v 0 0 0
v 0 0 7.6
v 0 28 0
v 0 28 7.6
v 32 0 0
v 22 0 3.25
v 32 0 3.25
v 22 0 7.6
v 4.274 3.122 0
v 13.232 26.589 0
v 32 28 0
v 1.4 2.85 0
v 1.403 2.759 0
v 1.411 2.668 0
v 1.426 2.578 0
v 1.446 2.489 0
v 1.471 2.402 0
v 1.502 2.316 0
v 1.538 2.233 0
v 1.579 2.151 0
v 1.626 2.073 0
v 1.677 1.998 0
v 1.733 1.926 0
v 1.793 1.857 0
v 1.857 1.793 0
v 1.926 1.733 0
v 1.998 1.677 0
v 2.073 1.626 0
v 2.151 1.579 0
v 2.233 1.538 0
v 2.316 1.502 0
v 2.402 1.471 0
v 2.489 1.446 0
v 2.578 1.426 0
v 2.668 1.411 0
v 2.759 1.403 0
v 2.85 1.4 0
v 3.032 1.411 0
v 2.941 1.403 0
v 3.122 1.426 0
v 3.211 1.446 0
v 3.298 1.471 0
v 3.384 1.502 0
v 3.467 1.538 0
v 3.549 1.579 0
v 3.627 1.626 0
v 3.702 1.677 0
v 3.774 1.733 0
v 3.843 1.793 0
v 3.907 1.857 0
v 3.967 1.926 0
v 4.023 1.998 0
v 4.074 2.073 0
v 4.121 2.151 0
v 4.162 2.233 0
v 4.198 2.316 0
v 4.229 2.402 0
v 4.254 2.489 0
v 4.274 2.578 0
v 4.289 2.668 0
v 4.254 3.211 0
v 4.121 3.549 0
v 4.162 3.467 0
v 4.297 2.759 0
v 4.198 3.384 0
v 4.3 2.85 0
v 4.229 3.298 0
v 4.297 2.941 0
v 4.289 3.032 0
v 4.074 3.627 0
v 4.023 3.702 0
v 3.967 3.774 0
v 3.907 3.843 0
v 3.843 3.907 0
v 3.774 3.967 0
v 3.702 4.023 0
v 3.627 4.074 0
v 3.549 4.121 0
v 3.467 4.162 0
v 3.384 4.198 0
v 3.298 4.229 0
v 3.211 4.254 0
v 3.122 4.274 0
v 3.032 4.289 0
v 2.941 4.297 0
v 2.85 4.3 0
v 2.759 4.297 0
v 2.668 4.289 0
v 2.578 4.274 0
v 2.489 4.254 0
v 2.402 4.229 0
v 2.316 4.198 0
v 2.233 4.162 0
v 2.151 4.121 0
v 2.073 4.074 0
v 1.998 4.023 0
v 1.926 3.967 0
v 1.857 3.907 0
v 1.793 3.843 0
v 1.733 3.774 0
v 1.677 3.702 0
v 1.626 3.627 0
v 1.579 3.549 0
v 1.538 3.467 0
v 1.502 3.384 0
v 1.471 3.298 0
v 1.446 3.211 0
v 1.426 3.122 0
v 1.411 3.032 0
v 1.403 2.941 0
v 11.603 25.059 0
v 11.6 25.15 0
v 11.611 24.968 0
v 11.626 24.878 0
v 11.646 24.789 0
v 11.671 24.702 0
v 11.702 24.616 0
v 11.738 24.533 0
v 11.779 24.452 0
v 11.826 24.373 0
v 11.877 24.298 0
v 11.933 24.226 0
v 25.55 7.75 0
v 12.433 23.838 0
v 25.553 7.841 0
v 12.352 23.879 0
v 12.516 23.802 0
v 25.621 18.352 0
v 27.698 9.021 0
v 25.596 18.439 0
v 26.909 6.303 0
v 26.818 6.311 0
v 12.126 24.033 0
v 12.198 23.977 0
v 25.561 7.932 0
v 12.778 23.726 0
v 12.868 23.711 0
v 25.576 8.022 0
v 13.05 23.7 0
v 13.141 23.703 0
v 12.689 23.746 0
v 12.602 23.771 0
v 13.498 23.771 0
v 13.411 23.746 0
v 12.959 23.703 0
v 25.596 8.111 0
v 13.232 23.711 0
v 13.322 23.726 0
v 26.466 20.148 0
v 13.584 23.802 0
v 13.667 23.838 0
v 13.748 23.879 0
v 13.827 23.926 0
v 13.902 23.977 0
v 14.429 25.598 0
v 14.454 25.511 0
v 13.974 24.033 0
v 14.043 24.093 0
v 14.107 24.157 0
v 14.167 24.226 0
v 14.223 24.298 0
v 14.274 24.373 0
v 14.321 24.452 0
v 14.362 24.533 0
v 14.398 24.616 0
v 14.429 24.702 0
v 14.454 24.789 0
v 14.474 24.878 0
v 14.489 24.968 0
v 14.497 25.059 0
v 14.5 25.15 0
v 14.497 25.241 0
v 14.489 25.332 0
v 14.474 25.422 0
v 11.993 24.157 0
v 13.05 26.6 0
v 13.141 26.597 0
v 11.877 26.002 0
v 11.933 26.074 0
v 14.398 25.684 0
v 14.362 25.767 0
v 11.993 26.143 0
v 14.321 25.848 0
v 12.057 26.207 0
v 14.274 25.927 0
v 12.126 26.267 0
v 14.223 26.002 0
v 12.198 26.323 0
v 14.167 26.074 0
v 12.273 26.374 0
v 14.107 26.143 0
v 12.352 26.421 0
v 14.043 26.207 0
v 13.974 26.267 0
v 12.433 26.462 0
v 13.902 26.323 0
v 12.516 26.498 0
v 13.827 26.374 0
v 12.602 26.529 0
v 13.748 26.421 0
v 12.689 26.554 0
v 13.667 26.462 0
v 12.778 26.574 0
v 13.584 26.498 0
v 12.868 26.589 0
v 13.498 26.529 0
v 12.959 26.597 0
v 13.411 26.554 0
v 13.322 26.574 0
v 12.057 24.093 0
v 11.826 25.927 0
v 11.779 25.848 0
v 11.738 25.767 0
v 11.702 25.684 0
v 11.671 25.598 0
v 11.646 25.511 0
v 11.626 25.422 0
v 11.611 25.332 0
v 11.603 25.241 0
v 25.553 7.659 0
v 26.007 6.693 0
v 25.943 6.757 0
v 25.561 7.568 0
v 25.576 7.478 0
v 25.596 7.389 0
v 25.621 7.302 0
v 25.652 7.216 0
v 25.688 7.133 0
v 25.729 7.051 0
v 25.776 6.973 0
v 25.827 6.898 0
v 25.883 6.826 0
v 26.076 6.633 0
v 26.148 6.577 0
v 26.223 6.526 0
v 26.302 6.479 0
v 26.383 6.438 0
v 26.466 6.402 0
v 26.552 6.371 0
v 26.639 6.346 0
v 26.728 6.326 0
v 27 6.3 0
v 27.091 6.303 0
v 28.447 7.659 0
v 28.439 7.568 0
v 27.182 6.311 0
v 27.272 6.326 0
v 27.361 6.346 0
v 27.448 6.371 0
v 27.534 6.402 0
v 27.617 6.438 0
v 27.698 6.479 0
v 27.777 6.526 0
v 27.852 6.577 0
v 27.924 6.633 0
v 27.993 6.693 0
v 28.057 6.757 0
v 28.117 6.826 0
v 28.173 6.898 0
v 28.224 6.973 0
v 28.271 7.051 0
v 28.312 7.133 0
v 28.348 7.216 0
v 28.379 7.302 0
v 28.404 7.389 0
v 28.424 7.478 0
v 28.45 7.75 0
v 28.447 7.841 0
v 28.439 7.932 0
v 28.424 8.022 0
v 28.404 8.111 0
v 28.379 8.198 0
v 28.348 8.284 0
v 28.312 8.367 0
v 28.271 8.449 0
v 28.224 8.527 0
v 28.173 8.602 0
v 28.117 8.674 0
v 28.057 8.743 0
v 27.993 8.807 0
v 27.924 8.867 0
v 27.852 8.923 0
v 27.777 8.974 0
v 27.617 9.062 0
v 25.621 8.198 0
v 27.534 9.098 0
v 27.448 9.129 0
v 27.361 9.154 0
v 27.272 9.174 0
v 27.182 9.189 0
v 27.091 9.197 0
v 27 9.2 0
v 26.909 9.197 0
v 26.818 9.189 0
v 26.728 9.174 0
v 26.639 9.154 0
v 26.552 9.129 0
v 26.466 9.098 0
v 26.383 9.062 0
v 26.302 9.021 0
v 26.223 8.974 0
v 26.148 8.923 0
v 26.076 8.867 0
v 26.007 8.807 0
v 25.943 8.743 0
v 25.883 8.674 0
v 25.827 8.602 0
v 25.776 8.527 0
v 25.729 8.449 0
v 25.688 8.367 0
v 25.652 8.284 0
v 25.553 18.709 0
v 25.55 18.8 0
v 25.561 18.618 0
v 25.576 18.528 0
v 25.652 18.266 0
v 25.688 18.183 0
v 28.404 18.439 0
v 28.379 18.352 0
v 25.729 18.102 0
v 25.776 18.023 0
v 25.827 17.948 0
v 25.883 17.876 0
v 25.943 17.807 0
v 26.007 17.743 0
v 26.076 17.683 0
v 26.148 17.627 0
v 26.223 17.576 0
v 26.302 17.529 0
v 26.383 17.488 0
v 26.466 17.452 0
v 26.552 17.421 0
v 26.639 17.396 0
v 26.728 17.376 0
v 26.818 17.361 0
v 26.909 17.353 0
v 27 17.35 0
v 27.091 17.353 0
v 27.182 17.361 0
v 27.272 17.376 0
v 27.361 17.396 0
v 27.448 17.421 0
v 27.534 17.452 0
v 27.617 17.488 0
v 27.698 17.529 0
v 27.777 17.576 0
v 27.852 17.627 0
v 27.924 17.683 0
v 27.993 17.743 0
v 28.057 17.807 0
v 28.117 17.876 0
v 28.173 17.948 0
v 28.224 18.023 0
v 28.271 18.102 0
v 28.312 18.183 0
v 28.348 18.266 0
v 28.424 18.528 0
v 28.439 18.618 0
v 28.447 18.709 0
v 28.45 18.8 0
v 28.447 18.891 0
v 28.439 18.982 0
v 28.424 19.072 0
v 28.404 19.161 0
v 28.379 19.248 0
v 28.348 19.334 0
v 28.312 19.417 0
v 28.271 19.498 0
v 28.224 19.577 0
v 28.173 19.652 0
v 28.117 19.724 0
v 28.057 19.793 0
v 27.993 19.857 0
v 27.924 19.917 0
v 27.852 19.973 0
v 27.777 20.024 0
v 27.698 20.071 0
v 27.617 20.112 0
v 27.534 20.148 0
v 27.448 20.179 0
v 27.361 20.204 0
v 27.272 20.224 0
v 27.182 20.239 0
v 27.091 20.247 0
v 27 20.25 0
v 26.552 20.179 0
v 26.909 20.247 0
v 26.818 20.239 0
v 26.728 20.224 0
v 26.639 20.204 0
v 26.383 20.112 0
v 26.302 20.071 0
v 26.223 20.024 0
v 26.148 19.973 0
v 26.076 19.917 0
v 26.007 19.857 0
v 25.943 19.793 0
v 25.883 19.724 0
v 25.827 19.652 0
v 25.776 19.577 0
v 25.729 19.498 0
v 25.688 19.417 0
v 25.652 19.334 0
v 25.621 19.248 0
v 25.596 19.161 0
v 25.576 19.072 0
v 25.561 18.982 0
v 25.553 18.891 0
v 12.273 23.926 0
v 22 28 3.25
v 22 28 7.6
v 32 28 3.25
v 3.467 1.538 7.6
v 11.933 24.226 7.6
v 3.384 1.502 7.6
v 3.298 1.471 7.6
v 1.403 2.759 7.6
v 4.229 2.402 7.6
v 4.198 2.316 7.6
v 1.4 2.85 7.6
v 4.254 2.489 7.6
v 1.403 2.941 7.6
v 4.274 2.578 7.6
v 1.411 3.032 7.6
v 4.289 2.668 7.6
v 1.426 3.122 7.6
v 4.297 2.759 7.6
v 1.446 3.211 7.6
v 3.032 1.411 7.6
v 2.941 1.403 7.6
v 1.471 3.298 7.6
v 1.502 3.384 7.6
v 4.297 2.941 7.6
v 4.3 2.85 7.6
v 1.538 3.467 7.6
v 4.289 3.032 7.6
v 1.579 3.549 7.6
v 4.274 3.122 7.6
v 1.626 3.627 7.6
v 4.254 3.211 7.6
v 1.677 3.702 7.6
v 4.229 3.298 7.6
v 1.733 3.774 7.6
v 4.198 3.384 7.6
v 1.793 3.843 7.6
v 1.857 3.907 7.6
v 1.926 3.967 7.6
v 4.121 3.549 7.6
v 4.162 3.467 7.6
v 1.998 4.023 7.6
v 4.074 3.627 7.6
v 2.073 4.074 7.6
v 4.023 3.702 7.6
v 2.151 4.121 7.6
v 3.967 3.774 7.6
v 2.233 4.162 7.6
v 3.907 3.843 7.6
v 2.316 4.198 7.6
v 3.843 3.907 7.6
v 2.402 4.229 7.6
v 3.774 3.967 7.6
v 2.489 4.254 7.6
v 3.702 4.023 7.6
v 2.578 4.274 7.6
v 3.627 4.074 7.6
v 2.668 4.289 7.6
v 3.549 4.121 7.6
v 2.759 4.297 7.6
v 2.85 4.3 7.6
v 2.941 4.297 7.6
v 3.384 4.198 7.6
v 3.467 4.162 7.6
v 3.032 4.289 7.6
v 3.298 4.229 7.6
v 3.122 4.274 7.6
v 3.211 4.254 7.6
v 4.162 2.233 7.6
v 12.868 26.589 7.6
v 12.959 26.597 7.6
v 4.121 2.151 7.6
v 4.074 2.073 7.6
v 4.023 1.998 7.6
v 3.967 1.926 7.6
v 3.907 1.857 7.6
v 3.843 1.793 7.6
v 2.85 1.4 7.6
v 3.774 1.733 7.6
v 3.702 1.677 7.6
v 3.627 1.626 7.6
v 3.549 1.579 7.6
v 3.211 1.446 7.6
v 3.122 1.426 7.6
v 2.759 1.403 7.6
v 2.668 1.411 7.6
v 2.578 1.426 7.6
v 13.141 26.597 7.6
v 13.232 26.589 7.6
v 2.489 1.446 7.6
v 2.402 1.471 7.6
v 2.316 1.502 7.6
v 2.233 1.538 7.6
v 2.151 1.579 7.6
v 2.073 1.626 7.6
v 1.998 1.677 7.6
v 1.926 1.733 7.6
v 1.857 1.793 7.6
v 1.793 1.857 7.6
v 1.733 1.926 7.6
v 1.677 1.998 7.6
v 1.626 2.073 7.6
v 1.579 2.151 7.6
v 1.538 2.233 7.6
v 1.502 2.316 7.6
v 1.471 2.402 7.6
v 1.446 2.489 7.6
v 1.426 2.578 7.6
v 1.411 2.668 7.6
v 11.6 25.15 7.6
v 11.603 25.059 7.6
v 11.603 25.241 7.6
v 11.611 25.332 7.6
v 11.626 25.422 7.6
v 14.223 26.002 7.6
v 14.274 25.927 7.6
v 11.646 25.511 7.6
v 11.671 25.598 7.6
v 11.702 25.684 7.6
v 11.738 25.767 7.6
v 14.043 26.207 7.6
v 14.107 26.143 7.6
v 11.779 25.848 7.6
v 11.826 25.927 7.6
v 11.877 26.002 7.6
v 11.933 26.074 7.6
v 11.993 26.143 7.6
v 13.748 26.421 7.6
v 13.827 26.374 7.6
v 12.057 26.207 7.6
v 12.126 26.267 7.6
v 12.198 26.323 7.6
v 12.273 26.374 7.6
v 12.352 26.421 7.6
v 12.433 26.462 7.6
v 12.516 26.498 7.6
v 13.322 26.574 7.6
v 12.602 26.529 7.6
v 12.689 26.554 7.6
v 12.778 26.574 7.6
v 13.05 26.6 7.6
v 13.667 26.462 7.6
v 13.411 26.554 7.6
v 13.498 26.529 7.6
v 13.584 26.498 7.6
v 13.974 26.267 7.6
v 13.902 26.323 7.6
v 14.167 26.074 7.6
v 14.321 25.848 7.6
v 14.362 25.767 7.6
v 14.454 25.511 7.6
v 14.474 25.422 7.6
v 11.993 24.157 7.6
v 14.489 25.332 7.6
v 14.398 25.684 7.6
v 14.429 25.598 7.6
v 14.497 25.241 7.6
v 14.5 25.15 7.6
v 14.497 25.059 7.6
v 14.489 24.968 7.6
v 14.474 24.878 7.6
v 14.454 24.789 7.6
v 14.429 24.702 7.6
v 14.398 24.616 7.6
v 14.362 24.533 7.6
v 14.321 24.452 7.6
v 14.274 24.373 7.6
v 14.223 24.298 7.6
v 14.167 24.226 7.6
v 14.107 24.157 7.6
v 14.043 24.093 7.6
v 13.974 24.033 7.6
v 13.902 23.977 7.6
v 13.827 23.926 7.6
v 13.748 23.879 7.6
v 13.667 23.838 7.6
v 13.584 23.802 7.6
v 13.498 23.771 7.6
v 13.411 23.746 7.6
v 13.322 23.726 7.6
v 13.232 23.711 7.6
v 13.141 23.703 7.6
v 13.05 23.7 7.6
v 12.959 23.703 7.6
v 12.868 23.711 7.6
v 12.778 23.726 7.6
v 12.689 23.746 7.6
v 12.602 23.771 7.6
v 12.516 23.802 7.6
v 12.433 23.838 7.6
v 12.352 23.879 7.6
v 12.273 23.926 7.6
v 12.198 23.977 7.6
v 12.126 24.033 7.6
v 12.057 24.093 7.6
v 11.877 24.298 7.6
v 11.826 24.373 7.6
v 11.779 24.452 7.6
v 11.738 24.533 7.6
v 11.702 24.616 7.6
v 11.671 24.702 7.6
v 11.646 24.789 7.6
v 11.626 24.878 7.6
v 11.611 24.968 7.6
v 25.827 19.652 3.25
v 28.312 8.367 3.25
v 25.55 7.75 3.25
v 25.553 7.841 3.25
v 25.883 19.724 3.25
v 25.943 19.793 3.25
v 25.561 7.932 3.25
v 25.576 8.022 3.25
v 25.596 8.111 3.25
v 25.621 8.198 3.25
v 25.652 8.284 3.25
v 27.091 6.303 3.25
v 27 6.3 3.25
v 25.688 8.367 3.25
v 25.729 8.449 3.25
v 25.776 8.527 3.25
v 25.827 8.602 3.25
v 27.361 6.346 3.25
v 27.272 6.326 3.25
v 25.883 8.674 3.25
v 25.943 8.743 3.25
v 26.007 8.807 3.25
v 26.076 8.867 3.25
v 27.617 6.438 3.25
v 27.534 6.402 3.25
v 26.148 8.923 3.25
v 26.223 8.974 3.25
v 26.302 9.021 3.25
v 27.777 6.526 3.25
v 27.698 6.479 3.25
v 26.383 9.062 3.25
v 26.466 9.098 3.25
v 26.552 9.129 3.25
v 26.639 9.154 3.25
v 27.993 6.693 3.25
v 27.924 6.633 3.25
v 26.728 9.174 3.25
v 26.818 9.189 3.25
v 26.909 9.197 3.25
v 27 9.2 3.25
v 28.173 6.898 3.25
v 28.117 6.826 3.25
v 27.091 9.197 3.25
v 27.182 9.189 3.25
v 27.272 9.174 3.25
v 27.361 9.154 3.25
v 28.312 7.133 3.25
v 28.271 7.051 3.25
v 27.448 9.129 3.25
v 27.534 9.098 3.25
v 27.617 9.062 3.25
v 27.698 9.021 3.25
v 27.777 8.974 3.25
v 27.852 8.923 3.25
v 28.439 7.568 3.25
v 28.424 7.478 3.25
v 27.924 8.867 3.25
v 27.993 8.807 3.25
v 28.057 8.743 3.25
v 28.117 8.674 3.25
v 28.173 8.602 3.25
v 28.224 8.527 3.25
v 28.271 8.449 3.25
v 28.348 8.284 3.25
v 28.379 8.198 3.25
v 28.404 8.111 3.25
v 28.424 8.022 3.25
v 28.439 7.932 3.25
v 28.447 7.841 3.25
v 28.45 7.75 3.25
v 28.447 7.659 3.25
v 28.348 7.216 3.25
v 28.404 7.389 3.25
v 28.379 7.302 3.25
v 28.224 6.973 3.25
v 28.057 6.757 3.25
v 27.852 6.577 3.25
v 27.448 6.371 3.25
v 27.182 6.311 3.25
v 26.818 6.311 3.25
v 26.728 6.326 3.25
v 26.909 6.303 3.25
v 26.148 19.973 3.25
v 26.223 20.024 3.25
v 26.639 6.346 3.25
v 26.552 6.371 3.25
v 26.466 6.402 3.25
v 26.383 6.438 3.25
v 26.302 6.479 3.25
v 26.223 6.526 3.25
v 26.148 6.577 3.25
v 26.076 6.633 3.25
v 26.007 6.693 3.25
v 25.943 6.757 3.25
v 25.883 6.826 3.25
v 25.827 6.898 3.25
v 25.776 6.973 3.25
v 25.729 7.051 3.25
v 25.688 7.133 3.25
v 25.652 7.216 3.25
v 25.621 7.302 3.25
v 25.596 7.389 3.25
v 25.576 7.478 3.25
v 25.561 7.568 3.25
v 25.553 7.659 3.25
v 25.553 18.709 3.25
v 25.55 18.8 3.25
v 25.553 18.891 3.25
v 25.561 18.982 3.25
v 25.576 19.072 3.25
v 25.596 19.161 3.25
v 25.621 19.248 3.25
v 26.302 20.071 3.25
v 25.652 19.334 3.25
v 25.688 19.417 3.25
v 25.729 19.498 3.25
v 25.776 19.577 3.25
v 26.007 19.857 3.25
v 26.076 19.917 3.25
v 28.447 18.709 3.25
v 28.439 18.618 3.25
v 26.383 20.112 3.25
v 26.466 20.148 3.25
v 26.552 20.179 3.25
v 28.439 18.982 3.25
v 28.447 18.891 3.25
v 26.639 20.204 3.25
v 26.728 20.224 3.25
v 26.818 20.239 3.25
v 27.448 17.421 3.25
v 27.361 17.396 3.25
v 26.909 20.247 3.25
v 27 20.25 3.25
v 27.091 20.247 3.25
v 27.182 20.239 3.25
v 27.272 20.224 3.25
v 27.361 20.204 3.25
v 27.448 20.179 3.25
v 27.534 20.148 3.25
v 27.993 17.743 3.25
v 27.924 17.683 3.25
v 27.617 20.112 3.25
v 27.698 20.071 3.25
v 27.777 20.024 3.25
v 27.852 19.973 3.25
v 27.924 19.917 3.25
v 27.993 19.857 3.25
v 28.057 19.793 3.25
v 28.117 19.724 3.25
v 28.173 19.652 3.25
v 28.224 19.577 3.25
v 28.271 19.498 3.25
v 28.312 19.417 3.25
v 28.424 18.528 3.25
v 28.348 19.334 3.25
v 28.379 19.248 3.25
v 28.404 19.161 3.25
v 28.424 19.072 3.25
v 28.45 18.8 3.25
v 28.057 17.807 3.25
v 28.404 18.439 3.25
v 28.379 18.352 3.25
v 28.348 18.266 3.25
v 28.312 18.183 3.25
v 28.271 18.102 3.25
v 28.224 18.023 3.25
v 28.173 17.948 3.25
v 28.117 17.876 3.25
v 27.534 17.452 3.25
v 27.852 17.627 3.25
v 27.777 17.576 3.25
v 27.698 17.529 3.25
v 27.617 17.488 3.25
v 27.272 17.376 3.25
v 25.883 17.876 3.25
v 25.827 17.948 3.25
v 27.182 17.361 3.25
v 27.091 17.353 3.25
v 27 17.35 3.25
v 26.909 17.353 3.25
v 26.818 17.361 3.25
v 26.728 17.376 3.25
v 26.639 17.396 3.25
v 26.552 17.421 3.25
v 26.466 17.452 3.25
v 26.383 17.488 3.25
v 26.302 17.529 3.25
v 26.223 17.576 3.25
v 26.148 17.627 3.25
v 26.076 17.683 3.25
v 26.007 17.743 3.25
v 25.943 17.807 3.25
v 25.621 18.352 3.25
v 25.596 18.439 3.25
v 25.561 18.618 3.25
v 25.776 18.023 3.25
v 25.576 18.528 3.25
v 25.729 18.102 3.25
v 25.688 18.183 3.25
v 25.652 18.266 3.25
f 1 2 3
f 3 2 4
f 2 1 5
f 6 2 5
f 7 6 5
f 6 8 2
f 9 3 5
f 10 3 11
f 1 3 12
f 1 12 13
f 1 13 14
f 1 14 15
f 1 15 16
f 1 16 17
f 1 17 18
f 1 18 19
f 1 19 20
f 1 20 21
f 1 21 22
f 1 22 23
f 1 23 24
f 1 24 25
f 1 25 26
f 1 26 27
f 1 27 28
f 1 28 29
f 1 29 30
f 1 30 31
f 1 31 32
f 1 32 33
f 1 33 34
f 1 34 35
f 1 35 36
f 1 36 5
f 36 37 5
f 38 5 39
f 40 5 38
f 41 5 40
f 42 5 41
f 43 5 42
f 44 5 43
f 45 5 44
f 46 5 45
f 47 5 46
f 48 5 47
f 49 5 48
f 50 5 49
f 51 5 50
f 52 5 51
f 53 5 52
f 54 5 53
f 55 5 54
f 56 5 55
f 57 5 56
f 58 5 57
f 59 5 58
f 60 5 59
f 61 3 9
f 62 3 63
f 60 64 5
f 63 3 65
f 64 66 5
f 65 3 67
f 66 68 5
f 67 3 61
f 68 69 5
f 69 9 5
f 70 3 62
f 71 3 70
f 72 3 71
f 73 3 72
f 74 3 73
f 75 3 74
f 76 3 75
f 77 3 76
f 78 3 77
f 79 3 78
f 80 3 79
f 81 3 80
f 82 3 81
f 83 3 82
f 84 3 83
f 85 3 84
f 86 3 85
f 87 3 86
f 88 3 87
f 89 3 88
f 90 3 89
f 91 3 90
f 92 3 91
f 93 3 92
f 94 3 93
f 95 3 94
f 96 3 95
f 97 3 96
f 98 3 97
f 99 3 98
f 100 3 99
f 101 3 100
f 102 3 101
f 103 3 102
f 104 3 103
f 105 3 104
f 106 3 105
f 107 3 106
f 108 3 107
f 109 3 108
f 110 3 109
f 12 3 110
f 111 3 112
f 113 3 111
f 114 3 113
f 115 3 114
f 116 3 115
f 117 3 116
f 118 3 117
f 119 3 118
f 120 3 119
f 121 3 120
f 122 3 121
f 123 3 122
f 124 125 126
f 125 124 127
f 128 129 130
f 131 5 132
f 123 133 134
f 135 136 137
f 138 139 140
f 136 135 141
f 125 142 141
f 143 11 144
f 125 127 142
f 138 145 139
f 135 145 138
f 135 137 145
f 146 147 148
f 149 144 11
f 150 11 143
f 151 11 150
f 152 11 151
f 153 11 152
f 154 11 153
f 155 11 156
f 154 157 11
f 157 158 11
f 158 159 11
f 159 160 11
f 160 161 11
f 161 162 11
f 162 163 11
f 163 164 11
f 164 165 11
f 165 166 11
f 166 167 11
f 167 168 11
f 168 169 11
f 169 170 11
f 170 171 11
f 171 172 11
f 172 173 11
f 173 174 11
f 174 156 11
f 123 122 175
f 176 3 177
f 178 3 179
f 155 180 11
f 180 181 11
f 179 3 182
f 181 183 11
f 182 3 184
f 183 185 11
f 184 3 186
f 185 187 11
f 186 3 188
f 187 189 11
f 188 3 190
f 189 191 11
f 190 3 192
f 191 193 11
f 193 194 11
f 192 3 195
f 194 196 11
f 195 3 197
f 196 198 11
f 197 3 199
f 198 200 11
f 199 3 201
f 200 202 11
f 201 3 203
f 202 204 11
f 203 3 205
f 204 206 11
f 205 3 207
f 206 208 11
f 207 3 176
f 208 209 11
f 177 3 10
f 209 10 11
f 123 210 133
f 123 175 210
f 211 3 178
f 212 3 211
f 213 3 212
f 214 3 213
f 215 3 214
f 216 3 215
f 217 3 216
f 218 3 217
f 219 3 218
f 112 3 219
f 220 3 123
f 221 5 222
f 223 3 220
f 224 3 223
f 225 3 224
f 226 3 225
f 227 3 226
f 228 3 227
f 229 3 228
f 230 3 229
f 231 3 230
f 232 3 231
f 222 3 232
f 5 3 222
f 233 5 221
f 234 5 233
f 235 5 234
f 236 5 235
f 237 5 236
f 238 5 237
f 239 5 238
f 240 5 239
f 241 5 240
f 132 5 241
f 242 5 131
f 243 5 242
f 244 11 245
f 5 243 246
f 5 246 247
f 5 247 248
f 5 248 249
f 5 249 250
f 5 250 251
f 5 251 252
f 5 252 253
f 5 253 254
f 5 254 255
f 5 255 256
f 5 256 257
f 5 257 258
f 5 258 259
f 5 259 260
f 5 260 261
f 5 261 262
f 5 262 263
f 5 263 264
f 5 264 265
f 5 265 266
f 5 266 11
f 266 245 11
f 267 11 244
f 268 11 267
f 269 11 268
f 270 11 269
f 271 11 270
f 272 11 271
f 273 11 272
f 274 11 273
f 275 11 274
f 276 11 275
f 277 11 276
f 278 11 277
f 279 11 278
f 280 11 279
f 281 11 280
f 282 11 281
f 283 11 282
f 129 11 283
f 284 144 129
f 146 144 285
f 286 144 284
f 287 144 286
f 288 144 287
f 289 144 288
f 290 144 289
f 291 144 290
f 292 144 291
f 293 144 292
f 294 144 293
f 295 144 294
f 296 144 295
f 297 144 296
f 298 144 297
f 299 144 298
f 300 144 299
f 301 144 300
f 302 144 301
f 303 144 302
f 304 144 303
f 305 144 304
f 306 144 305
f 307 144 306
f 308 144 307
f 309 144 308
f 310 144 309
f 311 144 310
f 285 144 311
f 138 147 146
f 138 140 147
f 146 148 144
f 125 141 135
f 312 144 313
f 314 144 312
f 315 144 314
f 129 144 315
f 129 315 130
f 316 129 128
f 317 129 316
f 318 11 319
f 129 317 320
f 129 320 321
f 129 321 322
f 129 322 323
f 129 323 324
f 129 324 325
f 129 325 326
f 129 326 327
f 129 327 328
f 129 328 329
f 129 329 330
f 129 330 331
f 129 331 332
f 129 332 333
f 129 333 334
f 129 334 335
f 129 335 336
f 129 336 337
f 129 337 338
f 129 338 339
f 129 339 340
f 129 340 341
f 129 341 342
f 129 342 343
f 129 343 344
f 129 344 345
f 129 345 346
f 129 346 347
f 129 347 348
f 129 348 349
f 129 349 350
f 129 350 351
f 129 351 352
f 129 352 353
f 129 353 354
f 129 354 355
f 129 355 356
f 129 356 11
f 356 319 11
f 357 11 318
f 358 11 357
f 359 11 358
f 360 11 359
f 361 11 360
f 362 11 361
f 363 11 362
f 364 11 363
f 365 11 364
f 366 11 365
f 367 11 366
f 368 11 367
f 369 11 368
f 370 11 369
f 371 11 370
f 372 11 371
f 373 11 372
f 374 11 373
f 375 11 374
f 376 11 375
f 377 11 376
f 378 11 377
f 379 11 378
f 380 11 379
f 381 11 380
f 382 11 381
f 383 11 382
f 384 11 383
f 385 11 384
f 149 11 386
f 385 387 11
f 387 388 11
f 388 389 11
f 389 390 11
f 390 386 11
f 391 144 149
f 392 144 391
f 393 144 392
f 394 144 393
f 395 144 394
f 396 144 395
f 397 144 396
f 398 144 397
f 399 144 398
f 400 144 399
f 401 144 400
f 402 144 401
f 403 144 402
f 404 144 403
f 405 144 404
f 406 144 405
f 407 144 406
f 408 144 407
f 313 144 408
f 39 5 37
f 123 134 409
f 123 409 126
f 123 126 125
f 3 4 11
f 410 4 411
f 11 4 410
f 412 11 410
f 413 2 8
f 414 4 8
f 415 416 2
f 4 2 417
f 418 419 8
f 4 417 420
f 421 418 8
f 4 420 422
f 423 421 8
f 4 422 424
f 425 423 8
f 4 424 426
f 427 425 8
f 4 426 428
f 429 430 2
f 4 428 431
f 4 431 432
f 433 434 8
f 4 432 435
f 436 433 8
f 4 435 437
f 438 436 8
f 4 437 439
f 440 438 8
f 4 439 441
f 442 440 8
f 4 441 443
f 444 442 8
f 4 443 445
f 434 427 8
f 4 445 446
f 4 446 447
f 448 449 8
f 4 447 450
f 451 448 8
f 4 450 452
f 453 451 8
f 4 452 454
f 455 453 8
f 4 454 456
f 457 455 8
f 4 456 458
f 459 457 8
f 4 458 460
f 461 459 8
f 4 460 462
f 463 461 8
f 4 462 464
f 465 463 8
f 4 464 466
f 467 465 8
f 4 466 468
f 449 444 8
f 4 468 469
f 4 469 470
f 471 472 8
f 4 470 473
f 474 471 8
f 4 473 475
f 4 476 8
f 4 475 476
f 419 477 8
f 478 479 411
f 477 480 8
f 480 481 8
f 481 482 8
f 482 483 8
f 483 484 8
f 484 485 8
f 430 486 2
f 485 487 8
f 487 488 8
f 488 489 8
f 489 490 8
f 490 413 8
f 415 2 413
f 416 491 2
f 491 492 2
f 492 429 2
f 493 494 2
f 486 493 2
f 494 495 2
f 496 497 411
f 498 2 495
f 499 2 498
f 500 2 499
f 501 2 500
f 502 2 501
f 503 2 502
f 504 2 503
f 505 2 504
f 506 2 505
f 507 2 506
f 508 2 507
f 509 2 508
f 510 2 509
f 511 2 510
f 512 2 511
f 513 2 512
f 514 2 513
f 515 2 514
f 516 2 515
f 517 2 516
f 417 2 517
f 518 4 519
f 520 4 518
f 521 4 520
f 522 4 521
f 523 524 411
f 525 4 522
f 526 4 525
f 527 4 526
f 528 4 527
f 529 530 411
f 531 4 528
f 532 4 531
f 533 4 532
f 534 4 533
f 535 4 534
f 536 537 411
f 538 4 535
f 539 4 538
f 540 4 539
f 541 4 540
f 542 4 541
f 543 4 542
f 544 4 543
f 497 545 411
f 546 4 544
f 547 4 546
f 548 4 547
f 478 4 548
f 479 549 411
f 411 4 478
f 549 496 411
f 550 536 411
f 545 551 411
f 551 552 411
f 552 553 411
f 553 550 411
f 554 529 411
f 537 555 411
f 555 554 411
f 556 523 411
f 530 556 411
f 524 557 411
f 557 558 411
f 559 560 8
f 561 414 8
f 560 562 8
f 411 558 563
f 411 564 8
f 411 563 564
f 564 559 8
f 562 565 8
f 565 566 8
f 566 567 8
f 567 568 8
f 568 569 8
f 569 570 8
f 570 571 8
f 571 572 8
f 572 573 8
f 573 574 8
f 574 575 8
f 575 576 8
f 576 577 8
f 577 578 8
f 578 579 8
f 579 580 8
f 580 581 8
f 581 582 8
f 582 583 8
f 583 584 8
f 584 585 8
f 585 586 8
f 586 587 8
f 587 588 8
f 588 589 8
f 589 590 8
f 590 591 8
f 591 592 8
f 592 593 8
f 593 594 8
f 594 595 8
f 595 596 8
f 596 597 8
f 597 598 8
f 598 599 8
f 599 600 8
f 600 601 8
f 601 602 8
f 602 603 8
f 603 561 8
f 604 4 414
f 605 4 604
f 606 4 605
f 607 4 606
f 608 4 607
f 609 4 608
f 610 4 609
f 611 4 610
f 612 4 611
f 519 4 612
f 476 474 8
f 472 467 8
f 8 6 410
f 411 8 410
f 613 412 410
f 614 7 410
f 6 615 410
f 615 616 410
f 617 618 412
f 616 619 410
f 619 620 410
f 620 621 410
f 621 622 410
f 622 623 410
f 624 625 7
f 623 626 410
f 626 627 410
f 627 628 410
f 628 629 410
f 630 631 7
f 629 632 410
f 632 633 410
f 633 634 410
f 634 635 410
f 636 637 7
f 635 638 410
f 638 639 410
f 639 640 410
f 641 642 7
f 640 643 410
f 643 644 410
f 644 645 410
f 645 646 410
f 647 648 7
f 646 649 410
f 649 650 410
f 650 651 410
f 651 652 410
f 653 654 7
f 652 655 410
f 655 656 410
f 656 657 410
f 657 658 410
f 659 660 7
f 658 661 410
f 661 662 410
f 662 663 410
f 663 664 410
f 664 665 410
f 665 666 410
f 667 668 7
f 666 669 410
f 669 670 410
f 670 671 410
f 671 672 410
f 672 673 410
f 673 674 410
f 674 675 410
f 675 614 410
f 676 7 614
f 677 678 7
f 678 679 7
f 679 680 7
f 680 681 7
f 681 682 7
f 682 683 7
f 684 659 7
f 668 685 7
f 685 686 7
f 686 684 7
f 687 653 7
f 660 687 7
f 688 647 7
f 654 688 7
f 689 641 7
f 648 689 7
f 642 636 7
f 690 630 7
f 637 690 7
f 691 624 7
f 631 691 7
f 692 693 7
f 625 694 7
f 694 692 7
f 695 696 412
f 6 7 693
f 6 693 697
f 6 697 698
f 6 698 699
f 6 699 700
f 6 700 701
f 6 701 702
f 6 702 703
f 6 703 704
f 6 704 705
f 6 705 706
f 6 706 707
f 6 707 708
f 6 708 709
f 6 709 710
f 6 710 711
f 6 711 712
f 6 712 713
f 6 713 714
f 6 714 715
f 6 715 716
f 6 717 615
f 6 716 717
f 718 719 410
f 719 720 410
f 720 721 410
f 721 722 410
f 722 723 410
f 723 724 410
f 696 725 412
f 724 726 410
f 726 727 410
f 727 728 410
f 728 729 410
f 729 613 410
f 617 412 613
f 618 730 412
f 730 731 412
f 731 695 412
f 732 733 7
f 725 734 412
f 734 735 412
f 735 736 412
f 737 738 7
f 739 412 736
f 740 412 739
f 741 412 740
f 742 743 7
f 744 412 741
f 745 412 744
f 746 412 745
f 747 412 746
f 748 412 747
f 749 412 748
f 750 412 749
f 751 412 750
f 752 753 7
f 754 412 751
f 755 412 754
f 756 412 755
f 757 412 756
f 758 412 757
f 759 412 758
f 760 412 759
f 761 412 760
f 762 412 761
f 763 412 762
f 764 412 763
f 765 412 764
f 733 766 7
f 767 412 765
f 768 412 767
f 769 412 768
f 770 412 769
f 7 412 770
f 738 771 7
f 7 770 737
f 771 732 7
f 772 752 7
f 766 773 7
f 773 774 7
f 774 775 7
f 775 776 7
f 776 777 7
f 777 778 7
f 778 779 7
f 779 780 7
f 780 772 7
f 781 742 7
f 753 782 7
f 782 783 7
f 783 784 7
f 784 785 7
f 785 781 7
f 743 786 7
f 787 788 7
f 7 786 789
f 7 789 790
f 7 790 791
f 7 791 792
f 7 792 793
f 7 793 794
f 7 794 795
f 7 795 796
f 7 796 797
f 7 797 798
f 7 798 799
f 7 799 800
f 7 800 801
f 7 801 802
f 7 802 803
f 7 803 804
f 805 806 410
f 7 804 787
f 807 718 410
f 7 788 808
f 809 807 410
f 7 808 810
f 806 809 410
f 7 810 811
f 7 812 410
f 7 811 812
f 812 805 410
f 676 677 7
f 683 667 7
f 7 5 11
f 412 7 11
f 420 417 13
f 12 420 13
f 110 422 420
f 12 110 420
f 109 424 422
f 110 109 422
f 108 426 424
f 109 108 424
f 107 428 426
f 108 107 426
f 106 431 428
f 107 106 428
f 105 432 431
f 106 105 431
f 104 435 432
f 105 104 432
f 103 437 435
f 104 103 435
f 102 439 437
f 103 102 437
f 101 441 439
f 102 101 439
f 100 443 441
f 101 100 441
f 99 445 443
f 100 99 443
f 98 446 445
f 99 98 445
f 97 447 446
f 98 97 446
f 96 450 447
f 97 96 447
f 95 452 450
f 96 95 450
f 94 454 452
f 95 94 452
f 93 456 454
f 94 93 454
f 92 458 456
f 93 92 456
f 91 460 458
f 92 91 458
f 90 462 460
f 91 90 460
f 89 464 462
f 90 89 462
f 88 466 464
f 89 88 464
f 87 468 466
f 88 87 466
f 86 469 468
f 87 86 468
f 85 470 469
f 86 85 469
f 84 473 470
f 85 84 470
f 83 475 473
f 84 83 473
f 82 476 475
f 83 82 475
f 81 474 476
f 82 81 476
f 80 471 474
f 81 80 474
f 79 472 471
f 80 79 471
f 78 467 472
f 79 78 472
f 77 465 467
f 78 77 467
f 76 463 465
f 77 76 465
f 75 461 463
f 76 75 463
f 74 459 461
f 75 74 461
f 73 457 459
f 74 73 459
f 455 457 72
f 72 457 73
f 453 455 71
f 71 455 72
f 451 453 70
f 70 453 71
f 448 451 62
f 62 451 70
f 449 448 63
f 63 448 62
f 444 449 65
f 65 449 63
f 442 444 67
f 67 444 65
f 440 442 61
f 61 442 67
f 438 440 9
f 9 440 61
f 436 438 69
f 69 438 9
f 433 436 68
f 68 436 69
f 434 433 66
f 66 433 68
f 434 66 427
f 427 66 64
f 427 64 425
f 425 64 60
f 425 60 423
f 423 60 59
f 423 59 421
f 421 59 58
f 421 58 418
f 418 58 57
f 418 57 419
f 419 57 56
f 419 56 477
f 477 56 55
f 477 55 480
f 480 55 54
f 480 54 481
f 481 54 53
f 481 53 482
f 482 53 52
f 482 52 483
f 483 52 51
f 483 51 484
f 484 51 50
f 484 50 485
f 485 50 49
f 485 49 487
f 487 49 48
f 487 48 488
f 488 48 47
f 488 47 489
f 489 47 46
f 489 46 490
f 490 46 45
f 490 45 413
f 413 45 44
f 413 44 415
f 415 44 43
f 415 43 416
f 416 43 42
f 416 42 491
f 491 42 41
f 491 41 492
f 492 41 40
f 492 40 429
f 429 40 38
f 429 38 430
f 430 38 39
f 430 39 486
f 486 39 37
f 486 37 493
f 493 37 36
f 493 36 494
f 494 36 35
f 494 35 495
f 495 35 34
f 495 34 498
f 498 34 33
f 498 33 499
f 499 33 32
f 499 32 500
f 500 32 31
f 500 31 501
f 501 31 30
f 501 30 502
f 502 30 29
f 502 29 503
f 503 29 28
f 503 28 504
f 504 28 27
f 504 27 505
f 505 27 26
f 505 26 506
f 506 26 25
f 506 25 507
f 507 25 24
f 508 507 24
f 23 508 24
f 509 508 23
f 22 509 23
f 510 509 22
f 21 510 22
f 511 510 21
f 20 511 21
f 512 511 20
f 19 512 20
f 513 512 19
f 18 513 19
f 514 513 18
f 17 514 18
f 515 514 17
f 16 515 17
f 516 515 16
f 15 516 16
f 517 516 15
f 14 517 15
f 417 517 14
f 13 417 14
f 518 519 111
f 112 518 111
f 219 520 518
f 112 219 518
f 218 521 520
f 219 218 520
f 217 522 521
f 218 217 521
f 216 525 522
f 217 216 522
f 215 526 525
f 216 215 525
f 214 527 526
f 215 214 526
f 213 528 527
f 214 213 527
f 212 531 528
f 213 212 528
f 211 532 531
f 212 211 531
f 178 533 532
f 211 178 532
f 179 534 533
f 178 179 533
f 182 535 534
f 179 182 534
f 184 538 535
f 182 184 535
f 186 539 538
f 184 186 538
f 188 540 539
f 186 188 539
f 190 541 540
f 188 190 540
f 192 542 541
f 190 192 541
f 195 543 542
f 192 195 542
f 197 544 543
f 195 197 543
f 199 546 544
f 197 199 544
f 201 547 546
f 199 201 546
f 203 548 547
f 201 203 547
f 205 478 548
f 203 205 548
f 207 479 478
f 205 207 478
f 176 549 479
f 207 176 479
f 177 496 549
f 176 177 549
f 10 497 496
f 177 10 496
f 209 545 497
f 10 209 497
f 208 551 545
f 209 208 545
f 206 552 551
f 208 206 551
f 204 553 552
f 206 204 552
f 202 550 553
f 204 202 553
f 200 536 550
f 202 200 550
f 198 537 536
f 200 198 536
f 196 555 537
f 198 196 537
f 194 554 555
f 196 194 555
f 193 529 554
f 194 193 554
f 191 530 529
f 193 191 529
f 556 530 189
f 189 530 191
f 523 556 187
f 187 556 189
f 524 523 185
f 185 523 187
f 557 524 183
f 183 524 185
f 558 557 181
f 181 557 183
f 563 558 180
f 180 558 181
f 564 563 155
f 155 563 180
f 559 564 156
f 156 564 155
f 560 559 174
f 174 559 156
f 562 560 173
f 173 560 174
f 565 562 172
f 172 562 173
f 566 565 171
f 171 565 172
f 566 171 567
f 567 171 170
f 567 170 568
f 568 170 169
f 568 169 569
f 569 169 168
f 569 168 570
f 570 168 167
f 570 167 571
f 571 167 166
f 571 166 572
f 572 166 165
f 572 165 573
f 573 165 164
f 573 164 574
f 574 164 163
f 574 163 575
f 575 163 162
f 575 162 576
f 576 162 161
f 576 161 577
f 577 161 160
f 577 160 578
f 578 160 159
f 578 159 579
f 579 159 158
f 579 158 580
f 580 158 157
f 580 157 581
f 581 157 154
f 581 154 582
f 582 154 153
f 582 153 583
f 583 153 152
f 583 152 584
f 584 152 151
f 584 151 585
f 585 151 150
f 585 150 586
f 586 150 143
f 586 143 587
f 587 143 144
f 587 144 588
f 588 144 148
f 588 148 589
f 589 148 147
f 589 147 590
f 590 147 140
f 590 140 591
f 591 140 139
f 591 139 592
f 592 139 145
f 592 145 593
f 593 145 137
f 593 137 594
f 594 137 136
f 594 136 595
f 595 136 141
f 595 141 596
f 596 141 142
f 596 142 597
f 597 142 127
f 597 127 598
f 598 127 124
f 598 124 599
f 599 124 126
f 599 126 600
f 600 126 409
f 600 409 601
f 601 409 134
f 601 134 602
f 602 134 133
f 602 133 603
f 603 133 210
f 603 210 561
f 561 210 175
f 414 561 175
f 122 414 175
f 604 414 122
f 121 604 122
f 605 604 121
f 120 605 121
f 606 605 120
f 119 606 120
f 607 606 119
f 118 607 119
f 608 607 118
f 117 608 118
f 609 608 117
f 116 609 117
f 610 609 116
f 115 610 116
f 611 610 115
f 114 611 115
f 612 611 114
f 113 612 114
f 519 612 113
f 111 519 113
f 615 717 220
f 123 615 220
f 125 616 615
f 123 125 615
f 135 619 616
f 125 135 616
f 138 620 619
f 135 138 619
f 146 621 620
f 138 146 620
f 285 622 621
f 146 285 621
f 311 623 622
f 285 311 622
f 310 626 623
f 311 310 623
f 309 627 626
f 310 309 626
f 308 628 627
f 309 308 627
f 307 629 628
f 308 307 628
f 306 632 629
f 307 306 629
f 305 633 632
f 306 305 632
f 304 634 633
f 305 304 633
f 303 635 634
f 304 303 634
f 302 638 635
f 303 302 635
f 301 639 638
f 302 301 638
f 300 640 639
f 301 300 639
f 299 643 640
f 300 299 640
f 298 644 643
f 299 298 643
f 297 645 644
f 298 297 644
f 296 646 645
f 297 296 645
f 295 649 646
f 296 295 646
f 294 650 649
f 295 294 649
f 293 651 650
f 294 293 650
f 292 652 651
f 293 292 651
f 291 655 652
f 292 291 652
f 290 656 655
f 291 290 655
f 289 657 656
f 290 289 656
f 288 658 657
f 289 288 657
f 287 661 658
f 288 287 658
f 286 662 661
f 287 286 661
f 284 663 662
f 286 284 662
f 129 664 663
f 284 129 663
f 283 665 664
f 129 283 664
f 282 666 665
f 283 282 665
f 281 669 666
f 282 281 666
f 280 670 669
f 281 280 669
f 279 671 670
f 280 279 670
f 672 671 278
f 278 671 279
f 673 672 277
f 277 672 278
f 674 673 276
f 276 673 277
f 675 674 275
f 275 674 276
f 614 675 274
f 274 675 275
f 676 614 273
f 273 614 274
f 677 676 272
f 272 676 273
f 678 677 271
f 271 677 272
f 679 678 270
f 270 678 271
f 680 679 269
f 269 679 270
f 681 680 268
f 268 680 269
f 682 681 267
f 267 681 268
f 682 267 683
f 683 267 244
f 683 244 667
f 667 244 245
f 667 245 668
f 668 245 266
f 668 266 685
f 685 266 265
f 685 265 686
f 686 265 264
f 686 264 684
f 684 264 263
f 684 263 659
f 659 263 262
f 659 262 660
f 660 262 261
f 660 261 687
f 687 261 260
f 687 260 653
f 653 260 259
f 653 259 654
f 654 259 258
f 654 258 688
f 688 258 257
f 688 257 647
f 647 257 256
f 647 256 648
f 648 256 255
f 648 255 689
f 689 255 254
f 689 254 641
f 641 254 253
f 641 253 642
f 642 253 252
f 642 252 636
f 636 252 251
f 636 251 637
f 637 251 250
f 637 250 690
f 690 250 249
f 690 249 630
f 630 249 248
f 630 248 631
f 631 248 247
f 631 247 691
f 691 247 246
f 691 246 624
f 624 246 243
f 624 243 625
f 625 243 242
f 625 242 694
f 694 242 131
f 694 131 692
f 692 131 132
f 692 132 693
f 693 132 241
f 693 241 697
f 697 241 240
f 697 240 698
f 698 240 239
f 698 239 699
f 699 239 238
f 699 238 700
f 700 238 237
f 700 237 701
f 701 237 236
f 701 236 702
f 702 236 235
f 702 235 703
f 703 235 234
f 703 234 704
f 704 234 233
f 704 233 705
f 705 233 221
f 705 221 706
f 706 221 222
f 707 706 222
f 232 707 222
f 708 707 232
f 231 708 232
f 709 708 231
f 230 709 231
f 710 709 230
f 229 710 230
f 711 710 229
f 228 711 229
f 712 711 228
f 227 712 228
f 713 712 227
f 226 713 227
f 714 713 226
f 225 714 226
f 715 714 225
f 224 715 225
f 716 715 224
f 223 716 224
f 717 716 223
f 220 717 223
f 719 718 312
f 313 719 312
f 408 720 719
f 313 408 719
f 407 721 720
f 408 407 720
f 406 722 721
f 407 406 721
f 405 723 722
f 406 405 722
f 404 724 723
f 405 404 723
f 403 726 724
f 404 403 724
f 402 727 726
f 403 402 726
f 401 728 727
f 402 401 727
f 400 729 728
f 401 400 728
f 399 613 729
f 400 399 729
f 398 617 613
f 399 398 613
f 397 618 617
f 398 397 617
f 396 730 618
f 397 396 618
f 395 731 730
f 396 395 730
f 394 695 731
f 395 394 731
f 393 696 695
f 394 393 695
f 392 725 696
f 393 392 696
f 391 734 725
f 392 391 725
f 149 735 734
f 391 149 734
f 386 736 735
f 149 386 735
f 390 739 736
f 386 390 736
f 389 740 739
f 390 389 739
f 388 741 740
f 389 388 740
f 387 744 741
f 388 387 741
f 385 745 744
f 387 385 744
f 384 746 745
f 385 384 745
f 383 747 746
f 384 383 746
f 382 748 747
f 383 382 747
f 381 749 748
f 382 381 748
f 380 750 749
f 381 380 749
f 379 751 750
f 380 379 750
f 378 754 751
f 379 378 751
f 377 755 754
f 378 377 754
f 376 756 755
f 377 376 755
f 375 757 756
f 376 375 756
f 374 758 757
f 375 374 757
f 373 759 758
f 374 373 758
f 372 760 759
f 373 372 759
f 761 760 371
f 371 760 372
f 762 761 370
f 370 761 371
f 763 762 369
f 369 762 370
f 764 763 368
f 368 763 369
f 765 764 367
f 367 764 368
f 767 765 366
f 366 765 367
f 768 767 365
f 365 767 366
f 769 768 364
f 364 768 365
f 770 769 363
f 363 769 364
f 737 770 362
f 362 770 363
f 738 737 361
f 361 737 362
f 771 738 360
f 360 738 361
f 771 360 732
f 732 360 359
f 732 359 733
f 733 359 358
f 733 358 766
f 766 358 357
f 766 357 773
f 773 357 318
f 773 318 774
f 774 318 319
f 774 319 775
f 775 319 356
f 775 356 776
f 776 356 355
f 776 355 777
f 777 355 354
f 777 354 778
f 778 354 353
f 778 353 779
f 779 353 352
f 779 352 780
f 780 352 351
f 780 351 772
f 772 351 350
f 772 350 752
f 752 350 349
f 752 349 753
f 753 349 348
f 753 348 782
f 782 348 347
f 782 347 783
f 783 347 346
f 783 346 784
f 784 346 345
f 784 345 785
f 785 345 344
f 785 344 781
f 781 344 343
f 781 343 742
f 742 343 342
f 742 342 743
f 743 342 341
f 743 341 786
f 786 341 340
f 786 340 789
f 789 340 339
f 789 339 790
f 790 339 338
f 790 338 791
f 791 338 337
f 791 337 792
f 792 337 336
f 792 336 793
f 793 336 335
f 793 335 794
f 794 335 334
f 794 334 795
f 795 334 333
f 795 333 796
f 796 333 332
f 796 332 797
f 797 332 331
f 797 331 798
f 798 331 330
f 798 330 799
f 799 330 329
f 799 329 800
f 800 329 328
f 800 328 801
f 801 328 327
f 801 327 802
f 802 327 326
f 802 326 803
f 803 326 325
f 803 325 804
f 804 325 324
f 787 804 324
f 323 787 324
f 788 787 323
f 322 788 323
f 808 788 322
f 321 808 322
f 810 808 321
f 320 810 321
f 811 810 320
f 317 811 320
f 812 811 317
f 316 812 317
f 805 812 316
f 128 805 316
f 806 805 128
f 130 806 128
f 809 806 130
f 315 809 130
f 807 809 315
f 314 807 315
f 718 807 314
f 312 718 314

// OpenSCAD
$fn=100;

mm=1;

switch_z=10*mm;

base_x=32*mm;
base_y=28*mm;
base_z=3.25*mm;

layer2_z=7.6*mm-base_z;

riser_x=22*mm;
riser_y=base_y;
riser_z=layer2_z;

riser_x_off=0;
riser_y_off=0;
riser_z_off=base_z;

hole_r=2.9*mm/2;
hole_z=base_z + layer2_z;

hole_y_off=1.4*mm + hole_r;

hole1_x_off=11.6*mm + hole_r;
hole1_y_off=base_y-hole_y_off;

hole2_x_off=hole_y_off;
hole2_y_off=hole_y_off;

tab_x=2.8*mm;
tab_y=12.5*mm;
tab_z=layer2_z + 3;

tab_x_off=riser_x+3.6*mm + (tab_x/2);
tab_y_off=(base_y-tab_y)/2;
tab_z_off=base_z;

module base(){
   cube([base_x, base_y, base_z]);
}

module tab(x_off, y_off, z_off, x, y, z){
	hull(){
		translate([x_off, y_off, z_off])
			cylinder(d=x, h=z);
		translate([x_off, y_off+(y), z_off])
			cylinder(d=x, h=z);
	}
}

module layer2(){
	translate([riser_x_off, riser_y_off, riser_z_off])
		cube([riser_x, riser_y, riser_z]);
}

module bottom_holes(){
	union(){
		translate([hole1_x_off, hole1_y_off, 0])
			cylinder(r=hole_r, h=hole_z);
		translate([hole2_x_off, hole2_y_off, 0])
			cylinder(r=hole_r, h=hole_z);
		translate([tab_x_off, tab_y_off, 0])
			cylinder(r=hole_r,h=base_z);
		translate([tab_x_off, tab_y_off+tab_y-hole_r, 0])
			cylinder(r=hole_r,h=base_z);
	}
}

module bottom(){
	difference(){
		union(){
		   	base();
   			layer2();
		}
		bottom_holes();
	}
}

bottom();
